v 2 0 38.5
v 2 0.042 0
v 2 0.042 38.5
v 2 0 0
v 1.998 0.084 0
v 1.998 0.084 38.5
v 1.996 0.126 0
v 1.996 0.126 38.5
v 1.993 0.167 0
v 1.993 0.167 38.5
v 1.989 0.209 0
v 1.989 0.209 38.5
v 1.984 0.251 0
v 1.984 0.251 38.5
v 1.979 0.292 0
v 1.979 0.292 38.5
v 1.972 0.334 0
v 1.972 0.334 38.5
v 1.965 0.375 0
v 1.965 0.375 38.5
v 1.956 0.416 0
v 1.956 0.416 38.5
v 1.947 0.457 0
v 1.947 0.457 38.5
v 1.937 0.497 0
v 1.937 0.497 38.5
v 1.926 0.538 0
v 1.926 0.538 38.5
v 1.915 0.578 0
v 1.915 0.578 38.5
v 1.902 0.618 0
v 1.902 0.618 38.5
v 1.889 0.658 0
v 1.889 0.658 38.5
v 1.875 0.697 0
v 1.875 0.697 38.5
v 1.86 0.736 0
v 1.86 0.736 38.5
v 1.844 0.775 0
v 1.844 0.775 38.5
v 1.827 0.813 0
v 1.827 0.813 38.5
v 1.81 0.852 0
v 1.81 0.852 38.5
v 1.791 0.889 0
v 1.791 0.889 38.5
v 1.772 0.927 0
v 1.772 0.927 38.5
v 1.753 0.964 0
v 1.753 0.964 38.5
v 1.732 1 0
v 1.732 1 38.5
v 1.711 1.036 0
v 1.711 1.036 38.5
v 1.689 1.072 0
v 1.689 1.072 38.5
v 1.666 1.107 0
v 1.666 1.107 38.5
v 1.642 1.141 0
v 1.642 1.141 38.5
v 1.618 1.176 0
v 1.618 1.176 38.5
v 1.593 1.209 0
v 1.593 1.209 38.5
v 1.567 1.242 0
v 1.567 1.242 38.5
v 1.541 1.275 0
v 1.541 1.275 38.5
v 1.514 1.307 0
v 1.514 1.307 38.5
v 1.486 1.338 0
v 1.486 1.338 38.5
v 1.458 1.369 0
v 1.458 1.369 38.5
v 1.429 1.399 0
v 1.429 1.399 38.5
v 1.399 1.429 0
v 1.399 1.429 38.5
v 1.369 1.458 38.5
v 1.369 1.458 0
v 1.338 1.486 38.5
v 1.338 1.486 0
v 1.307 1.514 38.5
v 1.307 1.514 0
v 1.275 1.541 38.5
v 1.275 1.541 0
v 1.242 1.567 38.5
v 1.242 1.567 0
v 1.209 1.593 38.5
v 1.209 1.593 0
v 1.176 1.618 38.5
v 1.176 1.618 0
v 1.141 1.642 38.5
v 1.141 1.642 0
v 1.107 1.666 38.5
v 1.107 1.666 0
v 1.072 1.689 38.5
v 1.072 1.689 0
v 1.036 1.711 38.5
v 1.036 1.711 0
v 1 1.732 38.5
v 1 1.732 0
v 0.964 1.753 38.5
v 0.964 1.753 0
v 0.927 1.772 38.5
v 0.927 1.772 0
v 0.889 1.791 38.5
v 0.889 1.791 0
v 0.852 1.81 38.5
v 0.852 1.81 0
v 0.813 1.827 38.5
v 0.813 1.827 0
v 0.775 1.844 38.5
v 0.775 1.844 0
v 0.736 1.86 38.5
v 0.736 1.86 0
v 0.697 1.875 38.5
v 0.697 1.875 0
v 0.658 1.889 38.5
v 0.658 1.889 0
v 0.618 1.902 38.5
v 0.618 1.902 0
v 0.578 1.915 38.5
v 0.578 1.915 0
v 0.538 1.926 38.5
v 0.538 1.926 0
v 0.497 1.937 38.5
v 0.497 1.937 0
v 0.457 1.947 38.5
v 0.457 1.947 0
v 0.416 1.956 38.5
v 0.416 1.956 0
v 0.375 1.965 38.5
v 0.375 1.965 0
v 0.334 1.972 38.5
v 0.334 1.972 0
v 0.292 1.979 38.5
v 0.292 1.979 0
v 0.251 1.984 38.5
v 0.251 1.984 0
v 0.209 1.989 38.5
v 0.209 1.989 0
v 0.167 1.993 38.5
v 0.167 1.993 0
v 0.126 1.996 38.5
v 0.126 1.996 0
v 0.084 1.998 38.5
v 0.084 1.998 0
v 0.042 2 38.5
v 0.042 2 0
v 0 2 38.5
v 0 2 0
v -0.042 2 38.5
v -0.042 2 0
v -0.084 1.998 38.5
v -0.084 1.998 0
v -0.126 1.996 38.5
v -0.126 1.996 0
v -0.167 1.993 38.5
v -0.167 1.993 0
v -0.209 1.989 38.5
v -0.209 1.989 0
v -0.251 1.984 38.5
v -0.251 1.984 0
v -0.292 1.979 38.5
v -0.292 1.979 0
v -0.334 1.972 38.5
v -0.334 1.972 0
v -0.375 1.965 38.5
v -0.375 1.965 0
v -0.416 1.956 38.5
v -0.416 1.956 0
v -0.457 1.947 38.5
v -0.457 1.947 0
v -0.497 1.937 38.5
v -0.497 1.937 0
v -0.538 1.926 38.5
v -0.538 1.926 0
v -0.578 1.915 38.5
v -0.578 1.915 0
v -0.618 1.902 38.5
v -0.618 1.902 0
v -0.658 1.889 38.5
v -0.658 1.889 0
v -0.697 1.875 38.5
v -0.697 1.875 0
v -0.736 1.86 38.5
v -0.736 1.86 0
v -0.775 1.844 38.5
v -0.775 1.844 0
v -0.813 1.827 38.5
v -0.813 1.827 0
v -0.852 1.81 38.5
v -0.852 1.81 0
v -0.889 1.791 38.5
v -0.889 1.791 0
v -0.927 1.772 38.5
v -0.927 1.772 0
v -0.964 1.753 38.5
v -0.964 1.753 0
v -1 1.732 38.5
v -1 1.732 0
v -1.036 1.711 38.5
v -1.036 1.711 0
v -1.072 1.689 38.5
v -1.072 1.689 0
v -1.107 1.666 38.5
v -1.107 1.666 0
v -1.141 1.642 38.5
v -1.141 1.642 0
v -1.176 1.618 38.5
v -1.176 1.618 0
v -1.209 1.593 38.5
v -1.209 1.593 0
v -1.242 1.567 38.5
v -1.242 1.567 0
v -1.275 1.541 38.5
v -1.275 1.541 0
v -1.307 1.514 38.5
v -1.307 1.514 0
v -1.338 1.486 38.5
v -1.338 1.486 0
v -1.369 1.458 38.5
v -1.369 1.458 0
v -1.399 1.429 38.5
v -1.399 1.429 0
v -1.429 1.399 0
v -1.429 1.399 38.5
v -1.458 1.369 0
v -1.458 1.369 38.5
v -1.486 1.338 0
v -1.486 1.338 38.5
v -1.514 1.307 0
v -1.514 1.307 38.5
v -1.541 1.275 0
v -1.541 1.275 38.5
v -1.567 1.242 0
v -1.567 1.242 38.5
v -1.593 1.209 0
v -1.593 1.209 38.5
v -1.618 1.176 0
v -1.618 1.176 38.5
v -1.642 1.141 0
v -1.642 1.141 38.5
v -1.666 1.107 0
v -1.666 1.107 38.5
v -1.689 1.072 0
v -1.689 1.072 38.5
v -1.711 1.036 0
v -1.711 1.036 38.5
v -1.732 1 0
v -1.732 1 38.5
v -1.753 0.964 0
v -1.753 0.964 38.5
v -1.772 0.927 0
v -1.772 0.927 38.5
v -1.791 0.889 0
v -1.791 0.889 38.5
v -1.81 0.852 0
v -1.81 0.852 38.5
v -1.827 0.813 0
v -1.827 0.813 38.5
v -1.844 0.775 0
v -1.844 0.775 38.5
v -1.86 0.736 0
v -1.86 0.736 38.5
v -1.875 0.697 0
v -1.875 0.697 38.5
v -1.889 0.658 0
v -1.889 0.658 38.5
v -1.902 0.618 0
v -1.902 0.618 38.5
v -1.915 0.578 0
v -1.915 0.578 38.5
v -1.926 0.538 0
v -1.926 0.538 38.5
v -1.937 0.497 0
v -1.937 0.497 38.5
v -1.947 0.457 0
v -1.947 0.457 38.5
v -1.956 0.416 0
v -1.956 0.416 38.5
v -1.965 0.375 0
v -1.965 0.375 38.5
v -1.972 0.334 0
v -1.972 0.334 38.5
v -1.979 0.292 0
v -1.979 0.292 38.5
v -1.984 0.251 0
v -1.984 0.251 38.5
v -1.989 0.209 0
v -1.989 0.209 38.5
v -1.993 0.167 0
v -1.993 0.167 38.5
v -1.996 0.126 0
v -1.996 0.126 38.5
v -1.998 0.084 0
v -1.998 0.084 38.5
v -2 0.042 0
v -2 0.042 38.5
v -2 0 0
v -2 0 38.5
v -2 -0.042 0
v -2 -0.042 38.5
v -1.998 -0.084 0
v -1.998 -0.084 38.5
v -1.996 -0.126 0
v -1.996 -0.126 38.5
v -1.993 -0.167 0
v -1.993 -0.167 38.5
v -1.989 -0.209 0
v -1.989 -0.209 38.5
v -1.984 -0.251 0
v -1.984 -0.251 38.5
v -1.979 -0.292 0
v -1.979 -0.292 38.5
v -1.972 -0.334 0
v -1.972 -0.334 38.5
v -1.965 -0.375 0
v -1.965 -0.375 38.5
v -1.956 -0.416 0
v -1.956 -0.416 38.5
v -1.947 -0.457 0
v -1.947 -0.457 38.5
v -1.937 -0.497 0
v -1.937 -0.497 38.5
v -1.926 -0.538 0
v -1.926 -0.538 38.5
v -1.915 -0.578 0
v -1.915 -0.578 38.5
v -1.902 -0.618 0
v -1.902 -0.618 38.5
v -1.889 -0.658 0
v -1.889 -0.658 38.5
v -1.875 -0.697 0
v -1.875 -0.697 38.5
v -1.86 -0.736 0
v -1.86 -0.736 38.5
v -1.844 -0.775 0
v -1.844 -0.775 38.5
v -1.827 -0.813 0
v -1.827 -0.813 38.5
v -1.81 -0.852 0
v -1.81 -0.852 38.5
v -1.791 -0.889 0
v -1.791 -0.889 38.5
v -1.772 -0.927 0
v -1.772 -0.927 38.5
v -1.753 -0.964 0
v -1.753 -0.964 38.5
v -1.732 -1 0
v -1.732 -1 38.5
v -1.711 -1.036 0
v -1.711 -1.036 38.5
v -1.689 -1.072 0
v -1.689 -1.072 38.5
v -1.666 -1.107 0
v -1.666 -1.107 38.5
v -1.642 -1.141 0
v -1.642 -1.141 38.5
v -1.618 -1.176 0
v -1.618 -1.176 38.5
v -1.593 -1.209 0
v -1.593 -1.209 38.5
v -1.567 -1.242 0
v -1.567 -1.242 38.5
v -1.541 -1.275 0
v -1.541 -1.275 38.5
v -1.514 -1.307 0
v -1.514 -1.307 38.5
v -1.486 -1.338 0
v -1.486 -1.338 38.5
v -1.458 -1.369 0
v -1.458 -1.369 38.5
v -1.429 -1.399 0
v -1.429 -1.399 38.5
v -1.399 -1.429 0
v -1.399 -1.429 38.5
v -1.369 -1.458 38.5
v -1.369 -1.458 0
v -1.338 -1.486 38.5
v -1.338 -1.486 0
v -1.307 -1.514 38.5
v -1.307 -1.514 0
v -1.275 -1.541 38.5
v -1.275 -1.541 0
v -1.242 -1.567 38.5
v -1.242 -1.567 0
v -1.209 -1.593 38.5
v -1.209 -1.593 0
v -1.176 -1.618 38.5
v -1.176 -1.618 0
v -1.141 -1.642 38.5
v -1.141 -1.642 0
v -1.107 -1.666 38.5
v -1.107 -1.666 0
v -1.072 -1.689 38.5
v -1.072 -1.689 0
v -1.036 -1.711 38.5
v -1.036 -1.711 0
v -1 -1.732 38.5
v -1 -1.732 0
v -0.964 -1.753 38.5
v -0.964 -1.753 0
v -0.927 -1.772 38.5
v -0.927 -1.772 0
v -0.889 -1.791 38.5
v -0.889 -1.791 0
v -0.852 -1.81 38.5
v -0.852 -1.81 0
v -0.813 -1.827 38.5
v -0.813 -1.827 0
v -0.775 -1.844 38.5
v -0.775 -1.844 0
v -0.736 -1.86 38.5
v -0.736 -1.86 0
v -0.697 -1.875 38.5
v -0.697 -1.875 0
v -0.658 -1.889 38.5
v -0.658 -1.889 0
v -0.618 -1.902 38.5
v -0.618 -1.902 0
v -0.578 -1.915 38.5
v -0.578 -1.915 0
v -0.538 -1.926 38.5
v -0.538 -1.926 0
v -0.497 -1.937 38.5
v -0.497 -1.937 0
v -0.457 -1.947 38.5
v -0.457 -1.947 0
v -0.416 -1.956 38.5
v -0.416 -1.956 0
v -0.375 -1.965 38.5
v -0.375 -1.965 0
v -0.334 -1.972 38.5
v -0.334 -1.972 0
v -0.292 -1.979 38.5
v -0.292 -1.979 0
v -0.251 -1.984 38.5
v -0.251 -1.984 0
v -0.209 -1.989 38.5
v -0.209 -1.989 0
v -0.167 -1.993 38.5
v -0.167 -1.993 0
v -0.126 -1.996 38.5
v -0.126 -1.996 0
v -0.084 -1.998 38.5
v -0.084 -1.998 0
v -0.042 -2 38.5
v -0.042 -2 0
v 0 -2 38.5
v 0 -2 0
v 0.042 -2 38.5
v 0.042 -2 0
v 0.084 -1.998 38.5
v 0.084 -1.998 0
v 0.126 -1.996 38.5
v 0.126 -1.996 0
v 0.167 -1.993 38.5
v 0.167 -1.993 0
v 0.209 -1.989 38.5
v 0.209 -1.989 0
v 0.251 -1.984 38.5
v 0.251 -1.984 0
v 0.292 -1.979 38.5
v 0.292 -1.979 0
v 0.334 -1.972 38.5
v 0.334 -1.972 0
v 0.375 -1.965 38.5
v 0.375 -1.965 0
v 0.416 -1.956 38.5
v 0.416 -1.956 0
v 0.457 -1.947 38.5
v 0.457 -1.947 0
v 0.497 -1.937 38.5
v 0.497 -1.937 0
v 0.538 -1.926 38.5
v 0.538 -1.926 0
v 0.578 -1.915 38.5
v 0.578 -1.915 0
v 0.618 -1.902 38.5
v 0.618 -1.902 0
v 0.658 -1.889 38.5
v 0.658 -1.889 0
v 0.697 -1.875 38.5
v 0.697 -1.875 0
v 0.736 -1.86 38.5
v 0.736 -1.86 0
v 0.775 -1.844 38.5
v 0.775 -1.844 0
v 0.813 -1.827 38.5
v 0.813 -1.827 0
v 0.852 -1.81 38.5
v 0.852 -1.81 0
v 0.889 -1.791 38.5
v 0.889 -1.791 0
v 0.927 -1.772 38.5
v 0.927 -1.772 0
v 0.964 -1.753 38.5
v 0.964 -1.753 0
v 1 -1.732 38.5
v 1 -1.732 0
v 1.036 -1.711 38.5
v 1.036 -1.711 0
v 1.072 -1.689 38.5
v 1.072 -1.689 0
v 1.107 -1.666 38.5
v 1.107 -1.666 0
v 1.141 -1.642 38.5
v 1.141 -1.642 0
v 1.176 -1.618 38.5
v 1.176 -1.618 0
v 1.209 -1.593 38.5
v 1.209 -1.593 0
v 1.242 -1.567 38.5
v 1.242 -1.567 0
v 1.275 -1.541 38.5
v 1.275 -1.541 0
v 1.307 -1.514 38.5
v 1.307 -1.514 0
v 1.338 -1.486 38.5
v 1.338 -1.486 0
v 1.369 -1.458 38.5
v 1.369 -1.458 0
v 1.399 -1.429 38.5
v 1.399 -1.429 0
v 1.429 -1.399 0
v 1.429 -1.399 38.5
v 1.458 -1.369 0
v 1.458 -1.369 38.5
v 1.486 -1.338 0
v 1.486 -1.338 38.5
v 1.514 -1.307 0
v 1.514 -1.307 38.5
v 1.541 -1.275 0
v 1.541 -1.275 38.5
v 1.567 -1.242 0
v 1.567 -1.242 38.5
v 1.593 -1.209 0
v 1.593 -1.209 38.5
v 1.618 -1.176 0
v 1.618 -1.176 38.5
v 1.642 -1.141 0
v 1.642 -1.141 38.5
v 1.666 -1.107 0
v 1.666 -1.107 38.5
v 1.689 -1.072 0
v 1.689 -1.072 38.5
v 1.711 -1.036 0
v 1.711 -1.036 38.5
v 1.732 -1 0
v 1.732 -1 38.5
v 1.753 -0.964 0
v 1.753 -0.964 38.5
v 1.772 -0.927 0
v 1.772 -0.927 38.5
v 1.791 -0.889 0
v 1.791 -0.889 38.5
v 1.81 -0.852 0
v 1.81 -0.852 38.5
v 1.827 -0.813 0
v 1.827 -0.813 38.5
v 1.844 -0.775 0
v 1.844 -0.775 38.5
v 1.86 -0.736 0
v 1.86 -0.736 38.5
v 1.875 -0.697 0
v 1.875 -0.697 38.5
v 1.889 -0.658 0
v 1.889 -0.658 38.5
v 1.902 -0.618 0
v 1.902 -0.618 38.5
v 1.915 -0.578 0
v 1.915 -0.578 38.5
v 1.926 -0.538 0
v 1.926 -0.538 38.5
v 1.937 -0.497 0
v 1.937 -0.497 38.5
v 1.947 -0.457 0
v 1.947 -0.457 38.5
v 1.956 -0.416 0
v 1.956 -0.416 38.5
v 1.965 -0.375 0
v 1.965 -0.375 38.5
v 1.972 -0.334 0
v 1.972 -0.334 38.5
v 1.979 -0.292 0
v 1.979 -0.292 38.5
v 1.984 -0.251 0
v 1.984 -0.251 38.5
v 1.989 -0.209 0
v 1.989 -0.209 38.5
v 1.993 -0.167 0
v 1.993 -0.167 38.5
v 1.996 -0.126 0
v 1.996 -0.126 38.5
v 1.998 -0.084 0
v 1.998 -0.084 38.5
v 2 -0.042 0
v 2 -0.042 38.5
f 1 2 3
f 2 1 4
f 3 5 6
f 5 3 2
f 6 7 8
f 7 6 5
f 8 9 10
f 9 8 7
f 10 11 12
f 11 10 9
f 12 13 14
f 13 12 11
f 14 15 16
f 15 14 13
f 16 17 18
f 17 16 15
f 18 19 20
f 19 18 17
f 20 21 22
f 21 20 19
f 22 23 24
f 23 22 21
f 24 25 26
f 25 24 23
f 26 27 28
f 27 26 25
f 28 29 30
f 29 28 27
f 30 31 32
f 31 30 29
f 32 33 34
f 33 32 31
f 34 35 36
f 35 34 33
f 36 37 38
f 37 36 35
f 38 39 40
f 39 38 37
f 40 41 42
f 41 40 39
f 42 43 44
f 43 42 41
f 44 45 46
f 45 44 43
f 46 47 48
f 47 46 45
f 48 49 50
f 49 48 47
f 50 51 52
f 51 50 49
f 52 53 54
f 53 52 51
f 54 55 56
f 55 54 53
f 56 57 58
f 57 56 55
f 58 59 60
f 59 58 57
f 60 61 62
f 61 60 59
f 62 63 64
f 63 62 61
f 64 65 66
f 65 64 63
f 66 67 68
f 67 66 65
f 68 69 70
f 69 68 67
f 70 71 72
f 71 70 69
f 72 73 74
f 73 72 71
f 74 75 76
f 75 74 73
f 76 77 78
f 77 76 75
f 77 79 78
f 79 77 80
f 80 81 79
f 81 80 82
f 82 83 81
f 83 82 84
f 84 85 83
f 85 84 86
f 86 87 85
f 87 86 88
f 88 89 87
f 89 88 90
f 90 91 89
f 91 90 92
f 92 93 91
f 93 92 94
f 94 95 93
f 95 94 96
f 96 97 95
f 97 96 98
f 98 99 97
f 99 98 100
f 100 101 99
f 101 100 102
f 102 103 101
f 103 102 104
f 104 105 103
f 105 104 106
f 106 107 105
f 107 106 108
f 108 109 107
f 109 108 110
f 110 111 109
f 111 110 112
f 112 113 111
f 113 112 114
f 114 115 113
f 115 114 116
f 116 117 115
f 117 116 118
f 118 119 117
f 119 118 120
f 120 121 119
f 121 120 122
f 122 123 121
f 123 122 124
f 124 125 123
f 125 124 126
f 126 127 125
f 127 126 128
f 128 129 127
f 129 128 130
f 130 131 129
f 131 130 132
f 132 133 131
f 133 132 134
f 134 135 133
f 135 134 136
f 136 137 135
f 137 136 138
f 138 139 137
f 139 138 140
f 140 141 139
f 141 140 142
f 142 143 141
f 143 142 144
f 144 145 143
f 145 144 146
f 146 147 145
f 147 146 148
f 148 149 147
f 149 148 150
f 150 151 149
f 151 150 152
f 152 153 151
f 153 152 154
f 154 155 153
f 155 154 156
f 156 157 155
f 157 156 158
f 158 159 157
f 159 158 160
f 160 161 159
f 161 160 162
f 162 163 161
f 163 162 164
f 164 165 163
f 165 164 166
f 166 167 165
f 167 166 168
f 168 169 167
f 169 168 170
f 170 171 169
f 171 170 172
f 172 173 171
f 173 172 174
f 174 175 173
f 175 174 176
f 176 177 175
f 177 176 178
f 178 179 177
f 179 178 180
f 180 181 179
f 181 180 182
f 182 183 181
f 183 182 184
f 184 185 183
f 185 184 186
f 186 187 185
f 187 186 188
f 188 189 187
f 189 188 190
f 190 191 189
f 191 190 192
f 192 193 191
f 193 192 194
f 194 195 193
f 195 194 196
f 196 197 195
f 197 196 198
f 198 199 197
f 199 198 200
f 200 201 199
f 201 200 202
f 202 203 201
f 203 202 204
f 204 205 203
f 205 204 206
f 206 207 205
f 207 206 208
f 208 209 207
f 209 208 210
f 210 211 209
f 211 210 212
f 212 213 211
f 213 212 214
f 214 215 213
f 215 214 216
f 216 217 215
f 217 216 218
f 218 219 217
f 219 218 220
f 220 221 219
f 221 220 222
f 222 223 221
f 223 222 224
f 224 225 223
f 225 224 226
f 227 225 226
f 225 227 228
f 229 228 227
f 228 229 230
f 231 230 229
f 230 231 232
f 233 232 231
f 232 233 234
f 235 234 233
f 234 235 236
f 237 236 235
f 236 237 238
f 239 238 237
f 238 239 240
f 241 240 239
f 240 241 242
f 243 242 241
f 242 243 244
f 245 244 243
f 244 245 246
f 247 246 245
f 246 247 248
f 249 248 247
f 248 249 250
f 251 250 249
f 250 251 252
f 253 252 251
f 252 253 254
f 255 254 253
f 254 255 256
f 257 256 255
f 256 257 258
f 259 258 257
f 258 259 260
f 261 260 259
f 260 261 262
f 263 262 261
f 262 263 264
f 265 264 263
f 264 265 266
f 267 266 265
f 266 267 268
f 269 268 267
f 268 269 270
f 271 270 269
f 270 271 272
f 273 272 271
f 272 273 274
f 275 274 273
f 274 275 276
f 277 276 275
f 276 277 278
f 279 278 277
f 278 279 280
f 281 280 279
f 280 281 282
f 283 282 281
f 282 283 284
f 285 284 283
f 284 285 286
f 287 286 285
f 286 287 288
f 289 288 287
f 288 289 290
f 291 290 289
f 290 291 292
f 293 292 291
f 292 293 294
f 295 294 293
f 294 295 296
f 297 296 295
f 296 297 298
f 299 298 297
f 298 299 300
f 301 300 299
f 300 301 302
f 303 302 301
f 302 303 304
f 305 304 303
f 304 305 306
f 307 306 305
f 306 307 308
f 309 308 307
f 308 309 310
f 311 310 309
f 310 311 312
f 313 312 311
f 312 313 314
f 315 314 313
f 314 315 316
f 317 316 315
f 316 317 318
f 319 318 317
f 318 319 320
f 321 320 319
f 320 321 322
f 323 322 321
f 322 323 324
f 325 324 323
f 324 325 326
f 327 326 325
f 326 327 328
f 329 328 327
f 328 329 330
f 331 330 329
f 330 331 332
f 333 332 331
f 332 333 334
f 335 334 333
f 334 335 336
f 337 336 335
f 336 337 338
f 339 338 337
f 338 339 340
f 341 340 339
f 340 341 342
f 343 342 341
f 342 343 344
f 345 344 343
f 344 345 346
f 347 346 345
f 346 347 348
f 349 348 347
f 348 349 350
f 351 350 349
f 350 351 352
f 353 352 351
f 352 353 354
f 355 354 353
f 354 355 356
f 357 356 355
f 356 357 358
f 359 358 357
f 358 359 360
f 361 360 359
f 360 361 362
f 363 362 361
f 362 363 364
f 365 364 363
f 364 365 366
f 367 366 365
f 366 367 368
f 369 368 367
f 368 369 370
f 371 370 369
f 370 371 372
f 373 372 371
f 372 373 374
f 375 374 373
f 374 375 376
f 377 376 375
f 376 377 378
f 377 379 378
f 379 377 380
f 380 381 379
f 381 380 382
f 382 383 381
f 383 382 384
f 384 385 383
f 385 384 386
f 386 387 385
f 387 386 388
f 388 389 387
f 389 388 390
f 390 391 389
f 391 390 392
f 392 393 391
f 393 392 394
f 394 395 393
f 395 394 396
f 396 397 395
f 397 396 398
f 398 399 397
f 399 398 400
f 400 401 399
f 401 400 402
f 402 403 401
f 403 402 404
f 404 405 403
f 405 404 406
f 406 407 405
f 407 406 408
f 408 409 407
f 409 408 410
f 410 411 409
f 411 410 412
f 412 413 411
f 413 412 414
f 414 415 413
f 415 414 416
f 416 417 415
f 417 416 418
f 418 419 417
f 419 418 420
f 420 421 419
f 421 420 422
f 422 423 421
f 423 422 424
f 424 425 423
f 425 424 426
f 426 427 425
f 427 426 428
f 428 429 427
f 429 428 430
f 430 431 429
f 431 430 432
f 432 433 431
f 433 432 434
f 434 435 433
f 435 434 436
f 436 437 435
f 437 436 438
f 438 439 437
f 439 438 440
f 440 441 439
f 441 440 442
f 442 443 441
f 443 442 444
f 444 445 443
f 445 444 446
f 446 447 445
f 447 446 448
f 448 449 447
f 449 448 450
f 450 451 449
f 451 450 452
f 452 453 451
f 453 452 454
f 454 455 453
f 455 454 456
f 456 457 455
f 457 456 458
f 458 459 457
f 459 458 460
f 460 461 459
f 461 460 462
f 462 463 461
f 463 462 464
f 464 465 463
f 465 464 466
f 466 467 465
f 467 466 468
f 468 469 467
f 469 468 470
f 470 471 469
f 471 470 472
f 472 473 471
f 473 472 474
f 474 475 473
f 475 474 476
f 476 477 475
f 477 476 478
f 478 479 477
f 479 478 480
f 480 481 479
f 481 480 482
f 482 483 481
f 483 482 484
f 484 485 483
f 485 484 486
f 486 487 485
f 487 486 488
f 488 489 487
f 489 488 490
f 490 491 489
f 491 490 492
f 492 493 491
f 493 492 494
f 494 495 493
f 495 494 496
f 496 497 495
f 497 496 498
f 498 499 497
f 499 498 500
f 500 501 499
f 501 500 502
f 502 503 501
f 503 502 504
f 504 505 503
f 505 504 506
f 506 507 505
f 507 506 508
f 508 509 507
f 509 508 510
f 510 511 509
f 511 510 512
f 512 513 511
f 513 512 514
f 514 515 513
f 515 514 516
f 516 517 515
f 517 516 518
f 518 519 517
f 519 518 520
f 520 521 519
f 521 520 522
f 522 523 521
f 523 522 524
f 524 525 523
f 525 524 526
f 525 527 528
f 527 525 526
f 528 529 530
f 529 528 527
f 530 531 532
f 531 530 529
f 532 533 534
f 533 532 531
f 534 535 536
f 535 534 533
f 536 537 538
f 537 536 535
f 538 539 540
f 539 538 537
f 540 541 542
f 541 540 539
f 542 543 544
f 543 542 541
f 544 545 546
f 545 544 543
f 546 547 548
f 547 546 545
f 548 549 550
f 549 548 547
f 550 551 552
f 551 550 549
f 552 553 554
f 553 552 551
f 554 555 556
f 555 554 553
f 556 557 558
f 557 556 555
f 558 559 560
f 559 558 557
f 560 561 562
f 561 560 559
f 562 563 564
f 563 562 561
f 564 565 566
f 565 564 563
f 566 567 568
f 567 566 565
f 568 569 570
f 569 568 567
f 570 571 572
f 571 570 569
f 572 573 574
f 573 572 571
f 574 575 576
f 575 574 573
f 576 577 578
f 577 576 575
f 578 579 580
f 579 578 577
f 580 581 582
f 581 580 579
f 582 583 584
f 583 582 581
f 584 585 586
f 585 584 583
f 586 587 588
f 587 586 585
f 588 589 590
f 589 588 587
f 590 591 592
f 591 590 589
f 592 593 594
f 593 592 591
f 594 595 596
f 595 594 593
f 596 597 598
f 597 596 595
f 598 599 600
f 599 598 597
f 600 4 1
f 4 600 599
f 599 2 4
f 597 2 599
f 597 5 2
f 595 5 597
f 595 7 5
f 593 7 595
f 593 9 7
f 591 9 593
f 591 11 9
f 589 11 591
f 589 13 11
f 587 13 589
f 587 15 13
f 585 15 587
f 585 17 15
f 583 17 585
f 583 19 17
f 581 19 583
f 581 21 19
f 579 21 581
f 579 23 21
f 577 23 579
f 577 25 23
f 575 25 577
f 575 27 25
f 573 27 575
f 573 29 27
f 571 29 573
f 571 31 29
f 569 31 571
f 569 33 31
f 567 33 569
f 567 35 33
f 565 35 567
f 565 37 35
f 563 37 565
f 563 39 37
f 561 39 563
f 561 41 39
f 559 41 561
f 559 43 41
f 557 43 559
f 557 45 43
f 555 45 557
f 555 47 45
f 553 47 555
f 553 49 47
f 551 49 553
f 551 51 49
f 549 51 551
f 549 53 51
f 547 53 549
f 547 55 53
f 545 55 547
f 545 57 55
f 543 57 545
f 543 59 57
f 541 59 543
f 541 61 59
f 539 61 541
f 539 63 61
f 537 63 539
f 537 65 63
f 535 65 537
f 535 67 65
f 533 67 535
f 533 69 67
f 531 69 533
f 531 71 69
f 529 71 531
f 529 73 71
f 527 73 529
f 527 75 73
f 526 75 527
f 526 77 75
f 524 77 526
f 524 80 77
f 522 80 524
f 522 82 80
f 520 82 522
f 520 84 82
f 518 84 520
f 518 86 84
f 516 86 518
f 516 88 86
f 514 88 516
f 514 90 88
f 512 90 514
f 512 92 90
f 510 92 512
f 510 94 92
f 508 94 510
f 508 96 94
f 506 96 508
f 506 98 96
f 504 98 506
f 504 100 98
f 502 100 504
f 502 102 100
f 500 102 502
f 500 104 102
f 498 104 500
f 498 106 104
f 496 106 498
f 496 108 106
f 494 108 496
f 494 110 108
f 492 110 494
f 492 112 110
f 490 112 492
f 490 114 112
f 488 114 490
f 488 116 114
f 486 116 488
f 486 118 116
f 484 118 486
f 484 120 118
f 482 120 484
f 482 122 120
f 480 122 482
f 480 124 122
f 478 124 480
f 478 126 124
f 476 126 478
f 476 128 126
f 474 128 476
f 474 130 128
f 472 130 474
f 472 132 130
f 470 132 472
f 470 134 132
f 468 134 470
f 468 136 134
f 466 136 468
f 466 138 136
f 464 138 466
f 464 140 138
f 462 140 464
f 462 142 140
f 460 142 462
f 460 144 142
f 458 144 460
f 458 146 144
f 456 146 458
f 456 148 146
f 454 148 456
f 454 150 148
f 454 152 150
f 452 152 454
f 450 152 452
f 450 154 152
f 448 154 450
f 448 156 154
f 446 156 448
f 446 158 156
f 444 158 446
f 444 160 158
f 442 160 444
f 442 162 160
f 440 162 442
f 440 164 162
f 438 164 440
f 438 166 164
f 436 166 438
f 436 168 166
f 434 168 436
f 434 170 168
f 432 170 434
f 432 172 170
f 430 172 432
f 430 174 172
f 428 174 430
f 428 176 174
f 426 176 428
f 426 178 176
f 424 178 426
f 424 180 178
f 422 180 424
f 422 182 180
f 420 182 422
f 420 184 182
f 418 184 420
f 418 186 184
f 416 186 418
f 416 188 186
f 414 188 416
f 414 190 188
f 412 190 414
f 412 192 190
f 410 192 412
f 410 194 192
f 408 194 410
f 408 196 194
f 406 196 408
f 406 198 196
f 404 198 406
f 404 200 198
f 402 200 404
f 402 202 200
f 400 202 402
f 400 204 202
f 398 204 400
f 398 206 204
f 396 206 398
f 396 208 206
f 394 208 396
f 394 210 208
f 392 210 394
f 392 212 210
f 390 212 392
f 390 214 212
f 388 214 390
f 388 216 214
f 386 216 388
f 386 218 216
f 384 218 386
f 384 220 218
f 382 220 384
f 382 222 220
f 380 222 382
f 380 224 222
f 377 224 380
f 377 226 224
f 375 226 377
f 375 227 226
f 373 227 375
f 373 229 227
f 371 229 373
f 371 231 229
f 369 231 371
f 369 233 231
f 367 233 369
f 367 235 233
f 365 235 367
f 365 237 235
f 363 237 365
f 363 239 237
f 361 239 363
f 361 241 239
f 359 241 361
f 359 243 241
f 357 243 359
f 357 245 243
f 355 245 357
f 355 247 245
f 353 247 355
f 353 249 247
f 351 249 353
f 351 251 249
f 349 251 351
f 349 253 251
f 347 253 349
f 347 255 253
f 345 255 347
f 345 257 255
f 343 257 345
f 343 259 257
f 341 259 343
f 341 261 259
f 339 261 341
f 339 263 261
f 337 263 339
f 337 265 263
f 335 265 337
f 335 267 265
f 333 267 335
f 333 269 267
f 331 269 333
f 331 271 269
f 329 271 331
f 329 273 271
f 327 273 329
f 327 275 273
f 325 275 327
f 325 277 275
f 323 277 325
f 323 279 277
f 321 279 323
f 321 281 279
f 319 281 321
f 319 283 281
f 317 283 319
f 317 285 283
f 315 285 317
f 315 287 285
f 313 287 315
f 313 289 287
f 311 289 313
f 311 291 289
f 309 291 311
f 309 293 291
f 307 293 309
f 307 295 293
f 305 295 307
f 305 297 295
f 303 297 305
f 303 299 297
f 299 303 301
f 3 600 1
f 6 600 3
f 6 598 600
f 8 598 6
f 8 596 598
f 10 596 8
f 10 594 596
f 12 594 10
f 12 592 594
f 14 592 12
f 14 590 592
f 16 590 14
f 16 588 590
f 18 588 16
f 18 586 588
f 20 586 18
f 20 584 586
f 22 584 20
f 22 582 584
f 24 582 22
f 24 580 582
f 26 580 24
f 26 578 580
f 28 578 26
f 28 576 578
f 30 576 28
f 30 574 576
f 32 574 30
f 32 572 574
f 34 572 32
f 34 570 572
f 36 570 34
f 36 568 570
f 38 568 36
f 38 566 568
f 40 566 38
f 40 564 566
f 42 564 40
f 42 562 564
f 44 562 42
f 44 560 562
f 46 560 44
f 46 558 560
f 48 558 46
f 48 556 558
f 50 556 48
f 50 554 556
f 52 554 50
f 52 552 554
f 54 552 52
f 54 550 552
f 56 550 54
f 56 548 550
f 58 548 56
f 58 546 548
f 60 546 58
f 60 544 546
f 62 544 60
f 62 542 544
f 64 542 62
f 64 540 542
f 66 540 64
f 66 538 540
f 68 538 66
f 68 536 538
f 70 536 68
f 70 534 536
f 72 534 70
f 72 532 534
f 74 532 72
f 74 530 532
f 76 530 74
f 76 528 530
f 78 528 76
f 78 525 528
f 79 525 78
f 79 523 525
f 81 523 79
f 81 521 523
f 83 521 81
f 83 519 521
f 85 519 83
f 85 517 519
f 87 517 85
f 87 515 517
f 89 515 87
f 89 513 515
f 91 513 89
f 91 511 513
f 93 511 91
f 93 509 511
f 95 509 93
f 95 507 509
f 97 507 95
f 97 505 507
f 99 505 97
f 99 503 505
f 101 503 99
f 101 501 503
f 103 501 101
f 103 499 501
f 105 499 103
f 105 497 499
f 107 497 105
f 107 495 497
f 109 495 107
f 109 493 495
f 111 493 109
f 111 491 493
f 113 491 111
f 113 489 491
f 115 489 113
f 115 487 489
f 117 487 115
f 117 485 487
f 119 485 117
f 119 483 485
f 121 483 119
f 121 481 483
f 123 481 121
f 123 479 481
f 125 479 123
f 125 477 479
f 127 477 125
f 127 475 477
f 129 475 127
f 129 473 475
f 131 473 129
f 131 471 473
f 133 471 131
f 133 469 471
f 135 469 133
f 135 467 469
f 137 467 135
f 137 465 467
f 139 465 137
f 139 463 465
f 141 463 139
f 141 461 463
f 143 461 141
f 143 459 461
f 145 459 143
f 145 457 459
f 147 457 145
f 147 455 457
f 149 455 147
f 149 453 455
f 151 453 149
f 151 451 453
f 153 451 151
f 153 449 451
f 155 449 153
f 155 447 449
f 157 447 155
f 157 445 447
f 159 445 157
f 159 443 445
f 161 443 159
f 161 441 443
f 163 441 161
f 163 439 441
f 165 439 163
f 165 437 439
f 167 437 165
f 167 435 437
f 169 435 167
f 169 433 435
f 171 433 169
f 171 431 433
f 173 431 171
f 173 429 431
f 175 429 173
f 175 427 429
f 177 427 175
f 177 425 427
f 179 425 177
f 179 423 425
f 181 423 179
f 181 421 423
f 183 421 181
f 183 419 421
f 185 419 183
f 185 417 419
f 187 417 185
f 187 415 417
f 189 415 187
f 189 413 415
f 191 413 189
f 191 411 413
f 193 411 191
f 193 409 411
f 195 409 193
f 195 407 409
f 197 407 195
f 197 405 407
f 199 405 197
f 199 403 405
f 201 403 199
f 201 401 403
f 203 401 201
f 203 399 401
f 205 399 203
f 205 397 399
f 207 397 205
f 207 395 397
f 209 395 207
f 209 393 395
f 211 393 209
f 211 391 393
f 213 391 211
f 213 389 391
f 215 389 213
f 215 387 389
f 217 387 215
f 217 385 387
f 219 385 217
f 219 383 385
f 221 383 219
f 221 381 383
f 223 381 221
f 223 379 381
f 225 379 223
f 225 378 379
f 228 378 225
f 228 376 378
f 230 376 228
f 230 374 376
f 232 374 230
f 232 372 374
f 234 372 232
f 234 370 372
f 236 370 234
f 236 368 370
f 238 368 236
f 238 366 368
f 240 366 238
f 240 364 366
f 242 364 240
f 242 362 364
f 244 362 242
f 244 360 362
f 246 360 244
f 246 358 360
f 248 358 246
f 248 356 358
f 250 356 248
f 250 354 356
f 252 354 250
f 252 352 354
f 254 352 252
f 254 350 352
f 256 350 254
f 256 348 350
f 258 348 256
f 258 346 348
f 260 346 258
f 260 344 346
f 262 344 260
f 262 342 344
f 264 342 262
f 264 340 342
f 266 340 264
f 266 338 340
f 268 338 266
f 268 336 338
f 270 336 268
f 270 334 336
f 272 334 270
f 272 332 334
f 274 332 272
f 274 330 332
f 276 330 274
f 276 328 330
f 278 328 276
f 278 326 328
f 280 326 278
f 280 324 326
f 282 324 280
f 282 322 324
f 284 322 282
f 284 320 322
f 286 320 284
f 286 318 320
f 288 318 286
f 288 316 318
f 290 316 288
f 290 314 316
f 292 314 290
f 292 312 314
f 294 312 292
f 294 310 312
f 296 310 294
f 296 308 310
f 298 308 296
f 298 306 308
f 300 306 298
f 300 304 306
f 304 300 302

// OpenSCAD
module down_holder_2() {
    cylinder(r=0.20, h=3.85); // Lock pin
}

$fn=300;
scale([10, 10, 10]) down_holder_2();
